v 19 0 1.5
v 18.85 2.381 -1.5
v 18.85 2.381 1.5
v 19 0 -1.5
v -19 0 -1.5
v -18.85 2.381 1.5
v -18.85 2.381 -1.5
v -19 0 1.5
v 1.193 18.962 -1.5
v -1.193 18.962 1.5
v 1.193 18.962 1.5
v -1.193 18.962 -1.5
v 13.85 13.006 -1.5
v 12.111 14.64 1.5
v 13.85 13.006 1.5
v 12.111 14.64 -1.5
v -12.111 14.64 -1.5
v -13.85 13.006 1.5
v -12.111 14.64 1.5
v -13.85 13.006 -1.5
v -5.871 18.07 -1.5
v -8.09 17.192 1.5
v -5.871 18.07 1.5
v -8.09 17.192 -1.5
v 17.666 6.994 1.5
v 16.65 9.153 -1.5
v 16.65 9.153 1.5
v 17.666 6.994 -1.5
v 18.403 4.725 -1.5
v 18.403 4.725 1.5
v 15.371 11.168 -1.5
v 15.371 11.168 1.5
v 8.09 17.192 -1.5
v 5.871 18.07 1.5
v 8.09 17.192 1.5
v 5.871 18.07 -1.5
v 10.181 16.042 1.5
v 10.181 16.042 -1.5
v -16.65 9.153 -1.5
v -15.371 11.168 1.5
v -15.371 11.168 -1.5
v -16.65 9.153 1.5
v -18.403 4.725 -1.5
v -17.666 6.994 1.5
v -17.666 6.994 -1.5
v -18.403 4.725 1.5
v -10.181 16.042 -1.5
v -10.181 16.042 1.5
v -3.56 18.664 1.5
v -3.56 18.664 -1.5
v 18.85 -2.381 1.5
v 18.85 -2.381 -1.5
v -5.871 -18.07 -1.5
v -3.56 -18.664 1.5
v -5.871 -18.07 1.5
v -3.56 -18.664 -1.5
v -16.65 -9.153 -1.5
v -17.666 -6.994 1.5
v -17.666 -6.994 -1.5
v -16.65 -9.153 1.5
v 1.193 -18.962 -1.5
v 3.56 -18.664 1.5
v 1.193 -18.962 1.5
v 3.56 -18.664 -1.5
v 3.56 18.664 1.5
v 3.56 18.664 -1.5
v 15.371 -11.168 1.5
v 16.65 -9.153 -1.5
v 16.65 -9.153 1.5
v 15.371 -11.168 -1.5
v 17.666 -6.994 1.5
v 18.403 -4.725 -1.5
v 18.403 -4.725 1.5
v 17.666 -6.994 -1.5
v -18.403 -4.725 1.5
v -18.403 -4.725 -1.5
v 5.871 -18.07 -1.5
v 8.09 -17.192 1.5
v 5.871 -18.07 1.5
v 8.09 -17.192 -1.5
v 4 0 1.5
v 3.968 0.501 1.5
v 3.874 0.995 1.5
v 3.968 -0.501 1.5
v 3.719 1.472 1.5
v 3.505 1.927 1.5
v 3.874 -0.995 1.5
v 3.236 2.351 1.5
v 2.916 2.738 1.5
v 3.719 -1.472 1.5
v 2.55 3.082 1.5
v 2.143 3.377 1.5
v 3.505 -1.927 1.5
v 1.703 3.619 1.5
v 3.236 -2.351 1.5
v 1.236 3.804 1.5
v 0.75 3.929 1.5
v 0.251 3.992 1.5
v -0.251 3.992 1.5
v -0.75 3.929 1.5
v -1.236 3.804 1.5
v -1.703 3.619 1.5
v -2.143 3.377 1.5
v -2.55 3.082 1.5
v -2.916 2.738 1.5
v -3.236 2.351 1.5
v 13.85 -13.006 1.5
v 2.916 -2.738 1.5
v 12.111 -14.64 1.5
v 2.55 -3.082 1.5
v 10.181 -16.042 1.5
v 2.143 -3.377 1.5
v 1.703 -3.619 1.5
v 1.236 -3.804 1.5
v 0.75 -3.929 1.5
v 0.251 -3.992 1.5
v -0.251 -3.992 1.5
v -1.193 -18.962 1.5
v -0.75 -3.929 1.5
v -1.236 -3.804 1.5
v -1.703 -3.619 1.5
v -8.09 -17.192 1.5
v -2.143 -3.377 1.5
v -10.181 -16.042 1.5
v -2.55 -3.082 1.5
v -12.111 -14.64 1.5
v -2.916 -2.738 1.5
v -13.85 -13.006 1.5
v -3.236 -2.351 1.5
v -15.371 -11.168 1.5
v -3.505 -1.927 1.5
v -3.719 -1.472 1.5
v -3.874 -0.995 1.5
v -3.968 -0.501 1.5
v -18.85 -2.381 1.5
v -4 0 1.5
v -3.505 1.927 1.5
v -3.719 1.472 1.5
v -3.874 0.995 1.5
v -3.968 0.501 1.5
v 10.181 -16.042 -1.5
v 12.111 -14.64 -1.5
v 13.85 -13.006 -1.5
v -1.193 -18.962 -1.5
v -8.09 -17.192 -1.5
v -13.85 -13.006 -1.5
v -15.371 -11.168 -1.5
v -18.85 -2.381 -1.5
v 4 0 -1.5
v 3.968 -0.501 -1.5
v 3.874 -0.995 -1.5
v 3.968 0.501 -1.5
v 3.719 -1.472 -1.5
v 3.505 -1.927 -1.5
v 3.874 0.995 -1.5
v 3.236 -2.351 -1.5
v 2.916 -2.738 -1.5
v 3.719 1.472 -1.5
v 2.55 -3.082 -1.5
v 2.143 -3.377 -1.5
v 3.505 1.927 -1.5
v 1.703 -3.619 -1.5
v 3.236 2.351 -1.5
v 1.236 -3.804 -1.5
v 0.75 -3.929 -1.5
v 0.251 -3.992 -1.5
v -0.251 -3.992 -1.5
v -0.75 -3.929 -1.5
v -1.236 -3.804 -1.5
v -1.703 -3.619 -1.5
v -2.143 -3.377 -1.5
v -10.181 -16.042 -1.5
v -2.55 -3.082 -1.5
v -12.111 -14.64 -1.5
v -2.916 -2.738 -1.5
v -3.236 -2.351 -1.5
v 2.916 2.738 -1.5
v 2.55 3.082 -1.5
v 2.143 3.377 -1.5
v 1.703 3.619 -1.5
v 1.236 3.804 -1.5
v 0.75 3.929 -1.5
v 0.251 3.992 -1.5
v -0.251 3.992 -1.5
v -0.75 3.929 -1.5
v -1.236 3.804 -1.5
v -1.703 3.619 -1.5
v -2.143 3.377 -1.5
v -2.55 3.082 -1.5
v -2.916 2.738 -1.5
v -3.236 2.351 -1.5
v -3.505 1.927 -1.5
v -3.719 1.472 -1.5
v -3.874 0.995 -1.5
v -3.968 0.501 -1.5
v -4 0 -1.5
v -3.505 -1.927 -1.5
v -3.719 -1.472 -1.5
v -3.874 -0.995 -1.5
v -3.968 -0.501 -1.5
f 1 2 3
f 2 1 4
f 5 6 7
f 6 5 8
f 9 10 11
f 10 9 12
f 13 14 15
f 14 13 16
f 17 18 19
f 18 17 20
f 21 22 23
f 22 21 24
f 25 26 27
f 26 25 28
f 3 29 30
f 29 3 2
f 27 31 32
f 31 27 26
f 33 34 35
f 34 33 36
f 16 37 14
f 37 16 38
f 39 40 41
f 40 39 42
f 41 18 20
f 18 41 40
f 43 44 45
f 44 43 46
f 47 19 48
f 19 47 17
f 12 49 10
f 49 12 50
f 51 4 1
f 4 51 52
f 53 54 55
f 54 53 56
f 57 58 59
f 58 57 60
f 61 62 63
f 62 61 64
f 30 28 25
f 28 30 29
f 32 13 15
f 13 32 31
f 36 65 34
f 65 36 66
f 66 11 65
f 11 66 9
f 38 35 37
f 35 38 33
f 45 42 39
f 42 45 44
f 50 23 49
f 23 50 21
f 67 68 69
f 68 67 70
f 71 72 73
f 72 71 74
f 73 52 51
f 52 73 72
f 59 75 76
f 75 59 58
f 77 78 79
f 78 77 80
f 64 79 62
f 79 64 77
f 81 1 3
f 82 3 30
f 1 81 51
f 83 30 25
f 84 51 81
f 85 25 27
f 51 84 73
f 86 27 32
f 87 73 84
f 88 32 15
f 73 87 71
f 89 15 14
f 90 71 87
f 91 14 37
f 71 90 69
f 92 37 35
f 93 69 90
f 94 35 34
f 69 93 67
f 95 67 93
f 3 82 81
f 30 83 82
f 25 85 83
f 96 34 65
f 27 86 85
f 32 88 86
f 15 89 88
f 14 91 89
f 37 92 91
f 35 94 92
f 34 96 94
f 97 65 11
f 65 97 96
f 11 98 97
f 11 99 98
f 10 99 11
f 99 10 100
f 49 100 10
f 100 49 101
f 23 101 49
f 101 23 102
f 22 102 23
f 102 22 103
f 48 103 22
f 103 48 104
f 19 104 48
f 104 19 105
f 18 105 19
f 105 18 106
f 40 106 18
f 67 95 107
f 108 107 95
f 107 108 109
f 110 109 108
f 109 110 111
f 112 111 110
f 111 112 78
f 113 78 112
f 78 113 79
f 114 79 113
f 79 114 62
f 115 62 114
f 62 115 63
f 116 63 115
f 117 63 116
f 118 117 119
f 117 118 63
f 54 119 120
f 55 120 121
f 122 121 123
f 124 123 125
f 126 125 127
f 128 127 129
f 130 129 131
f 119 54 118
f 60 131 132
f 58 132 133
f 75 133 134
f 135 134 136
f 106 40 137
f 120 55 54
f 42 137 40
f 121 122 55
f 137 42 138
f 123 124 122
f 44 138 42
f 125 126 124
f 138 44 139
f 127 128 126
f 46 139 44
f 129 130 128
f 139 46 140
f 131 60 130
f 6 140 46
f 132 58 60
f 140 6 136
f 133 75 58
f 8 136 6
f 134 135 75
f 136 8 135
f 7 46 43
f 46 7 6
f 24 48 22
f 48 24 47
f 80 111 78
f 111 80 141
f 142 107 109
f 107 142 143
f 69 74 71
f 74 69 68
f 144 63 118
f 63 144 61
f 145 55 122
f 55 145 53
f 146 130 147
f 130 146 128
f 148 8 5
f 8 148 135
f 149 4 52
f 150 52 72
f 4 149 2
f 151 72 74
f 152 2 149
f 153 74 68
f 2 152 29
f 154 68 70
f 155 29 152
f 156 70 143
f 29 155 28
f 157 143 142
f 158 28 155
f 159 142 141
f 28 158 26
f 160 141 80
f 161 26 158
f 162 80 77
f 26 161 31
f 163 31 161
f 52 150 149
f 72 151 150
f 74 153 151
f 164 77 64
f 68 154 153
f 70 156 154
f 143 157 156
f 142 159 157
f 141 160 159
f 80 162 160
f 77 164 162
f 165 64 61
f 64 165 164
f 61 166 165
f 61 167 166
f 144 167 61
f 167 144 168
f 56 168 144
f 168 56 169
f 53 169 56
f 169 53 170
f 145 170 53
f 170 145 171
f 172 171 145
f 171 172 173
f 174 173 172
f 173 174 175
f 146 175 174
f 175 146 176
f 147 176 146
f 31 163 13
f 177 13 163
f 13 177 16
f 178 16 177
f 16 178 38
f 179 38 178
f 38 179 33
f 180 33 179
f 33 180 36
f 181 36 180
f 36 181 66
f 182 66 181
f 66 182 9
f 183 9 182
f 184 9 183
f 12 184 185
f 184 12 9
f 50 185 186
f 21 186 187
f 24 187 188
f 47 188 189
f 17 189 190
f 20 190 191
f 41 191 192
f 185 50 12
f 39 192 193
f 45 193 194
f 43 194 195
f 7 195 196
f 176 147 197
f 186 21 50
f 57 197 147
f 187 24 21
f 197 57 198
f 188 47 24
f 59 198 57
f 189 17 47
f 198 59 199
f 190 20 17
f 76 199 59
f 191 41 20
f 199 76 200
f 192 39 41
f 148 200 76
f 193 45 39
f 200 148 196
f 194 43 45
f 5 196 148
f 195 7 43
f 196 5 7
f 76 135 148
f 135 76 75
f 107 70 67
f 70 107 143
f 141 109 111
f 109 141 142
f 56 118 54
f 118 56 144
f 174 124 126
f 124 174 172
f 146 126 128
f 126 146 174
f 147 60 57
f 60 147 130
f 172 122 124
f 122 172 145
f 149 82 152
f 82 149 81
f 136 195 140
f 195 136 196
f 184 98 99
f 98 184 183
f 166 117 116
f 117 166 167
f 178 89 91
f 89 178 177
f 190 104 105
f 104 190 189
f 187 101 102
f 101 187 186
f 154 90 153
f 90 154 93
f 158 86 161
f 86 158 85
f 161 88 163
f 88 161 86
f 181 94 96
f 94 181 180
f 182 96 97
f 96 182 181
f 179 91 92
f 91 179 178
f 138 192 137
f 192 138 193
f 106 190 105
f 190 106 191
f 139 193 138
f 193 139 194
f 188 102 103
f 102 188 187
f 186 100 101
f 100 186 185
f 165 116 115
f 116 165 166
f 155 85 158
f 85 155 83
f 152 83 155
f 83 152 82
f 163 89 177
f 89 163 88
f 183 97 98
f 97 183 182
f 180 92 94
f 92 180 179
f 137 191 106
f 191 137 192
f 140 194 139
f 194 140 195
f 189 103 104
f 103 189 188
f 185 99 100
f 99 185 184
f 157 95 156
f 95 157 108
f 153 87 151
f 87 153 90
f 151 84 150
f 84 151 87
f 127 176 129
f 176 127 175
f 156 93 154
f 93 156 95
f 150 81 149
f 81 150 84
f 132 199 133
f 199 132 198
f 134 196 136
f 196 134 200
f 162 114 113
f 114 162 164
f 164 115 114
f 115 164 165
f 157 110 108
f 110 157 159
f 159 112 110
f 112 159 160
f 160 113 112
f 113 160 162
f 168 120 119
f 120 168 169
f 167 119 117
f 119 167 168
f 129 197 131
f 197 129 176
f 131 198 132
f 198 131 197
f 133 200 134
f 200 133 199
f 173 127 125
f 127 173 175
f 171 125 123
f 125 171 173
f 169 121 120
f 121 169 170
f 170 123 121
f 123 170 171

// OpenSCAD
$fn = 50;


difference() {
	union() {
		translate(v = [0, 0, -1.5000000000]) {
			cylinder(h = 3, r = 19.0000000000);
		}
	}
	union() {
		translate(v = [0, 0, -100.0000000000]) {
			cylinder(h = 200, r = 4.0000000000);
		}
	}
}
